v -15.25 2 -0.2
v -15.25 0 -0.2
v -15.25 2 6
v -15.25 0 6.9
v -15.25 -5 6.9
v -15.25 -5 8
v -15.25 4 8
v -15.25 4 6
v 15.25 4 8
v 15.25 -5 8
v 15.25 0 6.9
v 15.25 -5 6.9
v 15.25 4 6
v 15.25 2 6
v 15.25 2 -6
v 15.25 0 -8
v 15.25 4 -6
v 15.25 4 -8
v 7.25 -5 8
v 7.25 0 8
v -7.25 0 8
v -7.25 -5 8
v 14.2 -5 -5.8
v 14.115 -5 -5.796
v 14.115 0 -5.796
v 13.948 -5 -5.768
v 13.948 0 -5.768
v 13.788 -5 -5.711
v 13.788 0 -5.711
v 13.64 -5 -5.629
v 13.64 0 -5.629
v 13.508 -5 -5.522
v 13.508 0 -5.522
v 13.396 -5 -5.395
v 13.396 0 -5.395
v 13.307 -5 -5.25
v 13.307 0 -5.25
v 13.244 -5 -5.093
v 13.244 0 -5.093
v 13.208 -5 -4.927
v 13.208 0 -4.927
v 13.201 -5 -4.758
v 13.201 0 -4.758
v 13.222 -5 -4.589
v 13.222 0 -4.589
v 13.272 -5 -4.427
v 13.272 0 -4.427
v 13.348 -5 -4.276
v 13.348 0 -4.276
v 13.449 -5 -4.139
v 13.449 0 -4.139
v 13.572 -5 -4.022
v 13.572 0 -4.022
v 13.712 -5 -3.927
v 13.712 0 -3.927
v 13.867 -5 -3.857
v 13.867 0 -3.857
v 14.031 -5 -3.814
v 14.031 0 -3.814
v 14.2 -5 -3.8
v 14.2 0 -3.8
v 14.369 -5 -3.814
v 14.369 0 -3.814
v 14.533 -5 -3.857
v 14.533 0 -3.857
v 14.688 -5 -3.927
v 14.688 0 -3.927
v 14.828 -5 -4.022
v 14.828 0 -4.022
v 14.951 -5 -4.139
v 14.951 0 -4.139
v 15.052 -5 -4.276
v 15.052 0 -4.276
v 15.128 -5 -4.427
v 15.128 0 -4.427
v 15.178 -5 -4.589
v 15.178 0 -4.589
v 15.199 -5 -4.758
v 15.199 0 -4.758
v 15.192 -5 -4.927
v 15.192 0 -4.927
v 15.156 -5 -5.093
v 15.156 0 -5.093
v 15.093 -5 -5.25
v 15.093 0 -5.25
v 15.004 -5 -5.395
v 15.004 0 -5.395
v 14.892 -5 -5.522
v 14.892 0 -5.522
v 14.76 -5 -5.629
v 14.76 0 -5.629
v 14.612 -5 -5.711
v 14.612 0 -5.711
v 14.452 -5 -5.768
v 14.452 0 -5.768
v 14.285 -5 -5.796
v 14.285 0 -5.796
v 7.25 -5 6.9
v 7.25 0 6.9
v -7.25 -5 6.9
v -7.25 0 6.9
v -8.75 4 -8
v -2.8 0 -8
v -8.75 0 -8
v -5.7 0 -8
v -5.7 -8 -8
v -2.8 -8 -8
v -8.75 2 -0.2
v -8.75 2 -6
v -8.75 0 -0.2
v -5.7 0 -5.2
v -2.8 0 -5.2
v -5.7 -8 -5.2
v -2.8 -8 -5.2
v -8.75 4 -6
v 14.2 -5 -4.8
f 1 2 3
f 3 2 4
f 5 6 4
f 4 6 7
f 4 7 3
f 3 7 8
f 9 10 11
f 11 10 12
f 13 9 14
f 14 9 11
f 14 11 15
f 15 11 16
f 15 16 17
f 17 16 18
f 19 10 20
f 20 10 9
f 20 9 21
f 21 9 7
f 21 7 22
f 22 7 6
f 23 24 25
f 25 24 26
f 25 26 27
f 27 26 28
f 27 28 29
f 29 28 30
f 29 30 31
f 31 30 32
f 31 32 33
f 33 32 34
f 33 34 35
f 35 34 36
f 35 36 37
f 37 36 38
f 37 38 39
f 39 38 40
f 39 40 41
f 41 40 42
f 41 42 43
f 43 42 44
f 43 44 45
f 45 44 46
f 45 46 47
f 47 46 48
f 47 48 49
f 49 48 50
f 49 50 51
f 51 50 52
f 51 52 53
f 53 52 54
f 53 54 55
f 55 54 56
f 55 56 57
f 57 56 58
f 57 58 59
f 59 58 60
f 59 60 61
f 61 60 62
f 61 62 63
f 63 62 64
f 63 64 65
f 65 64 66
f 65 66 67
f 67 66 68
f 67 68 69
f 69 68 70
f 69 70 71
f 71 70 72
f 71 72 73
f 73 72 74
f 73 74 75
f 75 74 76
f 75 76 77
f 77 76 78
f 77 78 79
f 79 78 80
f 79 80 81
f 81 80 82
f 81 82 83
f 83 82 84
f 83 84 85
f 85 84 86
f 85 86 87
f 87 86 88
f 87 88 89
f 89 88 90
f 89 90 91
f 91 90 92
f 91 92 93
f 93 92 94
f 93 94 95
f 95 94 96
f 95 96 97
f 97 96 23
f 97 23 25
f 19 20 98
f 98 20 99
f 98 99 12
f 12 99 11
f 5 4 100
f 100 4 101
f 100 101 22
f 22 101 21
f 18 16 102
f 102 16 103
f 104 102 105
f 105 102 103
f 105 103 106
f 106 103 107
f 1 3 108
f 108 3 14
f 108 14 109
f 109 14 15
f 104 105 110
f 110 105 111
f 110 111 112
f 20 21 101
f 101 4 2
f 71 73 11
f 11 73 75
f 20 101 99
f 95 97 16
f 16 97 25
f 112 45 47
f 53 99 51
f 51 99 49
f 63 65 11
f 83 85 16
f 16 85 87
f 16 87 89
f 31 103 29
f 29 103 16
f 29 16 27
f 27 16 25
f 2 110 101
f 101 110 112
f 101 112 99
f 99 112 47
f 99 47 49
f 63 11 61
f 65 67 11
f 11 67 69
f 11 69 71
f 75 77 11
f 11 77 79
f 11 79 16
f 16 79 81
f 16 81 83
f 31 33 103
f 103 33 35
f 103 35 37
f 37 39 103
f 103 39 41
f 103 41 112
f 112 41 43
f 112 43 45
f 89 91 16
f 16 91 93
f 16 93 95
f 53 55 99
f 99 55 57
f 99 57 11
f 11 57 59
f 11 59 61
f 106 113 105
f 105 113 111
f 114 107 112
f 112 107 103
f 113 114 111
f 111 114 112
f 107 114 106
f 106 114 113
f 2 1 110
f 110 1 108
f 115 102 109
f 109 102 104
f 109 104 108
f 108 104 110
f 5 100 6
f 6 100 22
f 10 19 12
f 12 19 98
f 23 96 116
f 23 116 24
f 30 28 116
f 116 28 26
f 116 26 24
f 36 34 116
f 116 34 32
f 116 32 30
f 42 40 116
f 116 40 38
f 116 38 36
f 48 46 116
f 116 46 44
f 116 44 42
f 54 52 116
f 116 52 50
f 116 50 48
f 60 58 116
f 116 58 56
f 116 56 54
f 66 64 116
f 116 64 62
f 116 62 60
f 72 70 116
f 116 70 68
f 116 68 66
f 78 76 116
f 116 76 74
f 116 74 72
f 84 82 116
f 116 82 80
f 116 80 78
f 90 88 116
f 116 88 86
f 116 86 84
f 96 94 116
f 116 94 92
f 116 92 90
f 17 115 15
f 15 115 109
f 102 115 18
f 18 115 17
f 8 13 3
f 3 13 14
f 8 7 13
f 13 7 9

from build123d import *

# Parameters (mm, degrees)
SKETCH1_W           = 30.5
SKETCH1_H           = 16
BOSS_EXTRUDE1_DEPTH = 2
SKETCH3_R           = 1
SKETCH3_W           = 2.9
SKETCH3_H           = 2.8
SKETCH3_W_2         = 8
SKETCH3_H_2         = 1.1
BOSS_EXTRUDE3_DEPTH = 8
CUT_EXTRUDE2_DEPTH  = 10
CUT_EXTRUDE3_START  = -3
SKETCH5_R           = 1
SKETCH5_W           = 30.5
SKETCH5_H           = 1.1
CUT_EXTRUDE3_DEPTH  = 3
SKETCH6_W           = 30.5
SKETCH6_H           = 2
SKETCH6_W_2         = 24
BOSS_EXTRUDE4_DEPTH = 2


with BuildPart() as part:
    # Sketch1 → Boss-Extrude1 (new body)
    with BuildSketch(Plane(origin=(0, 0, 0), x_dir=(1, 0, 0), z_dir=(0, 1, 0))):
        Rectangle(SKETCH1_W, SKETCH1_H)
    extrude(amount=BOSS_EXTRUDE1_DEPTH)

    # Sketch3 → Boss-Extrude3 (add)
    with BuildSketch(Plane(origin=(0, 0, 0), x_dir=(1, 0, 0), z_dir=(0, 1, 0))):
        with Locations(Location((14.2, 4.8, 0), (0, 0, 270))):
            Circle(SKETCH3_R)
        with Locations((-4.25, 6.6)):
            Rectangle(SKETCH3_W, SKETCH3_H)
        with Locations((-11.25, -7.45)):
            Rectangle(SKETCH3_W_2, SKETCH3_H_2)
        with Locations((11.25, -7.45)):
            Rectangle(SKETCH3_W_2, SKETCH3_H_2)
    extrude(amount=-BOSS_EXTRUDE3_DEPTH)

    # Sketch4 → Cut-Extrude2 (cut)
    with BuildSketch(Plane(origin=(0, 0, 0), x_dir=(1, 0, 0), z_dir=(0, 1, 0))):
        Polygon((-15.25, 2.7), (-15.25, 8), (-8.75, 8), (-8.75, 2.7), (-8.75, 0.2), (-15.25, 0.2), align=None)
    extrude(amount=CUT_EXTRUDE2_DEPTH, mode=Mode.SUBTRACT)

    # Sketch5 → Cut-Extrude3 (cut)
    with BuildSketch(Plane.XZ.offset(8).offset(CUT_EXTRUDE3_START)):
        with Locations(Location((14.2, -4.8, 0), (0, 0, 90))):
            Circle(SKETCH5_R)
        with Locations((0, 7.45)):
            Rectangle(SKETCH5_W, SKETCH5_H)
    extrude(amount=CUT_EXTRUDE3_DEPTH, mode=Mode.SUBTRACT)

    # Sketch6 → Boss-Extrude4 (add)
    with BuildSketch(Plane(origin=(0, 2, 0), x_dir=(1, 0, 0), z_dir=(0, 1, 0))):
        with Locations((0, -7)):
            Rectangle(SKETCH6_W, SKETCH6_H)
        with Locations((3.25, 7)):
            Rectangle(SKETCH6_W_2, SKETCH6_H)
    extrude(amount=BOSS_EXTRUDE4_DEPTH)


solid = part.part
